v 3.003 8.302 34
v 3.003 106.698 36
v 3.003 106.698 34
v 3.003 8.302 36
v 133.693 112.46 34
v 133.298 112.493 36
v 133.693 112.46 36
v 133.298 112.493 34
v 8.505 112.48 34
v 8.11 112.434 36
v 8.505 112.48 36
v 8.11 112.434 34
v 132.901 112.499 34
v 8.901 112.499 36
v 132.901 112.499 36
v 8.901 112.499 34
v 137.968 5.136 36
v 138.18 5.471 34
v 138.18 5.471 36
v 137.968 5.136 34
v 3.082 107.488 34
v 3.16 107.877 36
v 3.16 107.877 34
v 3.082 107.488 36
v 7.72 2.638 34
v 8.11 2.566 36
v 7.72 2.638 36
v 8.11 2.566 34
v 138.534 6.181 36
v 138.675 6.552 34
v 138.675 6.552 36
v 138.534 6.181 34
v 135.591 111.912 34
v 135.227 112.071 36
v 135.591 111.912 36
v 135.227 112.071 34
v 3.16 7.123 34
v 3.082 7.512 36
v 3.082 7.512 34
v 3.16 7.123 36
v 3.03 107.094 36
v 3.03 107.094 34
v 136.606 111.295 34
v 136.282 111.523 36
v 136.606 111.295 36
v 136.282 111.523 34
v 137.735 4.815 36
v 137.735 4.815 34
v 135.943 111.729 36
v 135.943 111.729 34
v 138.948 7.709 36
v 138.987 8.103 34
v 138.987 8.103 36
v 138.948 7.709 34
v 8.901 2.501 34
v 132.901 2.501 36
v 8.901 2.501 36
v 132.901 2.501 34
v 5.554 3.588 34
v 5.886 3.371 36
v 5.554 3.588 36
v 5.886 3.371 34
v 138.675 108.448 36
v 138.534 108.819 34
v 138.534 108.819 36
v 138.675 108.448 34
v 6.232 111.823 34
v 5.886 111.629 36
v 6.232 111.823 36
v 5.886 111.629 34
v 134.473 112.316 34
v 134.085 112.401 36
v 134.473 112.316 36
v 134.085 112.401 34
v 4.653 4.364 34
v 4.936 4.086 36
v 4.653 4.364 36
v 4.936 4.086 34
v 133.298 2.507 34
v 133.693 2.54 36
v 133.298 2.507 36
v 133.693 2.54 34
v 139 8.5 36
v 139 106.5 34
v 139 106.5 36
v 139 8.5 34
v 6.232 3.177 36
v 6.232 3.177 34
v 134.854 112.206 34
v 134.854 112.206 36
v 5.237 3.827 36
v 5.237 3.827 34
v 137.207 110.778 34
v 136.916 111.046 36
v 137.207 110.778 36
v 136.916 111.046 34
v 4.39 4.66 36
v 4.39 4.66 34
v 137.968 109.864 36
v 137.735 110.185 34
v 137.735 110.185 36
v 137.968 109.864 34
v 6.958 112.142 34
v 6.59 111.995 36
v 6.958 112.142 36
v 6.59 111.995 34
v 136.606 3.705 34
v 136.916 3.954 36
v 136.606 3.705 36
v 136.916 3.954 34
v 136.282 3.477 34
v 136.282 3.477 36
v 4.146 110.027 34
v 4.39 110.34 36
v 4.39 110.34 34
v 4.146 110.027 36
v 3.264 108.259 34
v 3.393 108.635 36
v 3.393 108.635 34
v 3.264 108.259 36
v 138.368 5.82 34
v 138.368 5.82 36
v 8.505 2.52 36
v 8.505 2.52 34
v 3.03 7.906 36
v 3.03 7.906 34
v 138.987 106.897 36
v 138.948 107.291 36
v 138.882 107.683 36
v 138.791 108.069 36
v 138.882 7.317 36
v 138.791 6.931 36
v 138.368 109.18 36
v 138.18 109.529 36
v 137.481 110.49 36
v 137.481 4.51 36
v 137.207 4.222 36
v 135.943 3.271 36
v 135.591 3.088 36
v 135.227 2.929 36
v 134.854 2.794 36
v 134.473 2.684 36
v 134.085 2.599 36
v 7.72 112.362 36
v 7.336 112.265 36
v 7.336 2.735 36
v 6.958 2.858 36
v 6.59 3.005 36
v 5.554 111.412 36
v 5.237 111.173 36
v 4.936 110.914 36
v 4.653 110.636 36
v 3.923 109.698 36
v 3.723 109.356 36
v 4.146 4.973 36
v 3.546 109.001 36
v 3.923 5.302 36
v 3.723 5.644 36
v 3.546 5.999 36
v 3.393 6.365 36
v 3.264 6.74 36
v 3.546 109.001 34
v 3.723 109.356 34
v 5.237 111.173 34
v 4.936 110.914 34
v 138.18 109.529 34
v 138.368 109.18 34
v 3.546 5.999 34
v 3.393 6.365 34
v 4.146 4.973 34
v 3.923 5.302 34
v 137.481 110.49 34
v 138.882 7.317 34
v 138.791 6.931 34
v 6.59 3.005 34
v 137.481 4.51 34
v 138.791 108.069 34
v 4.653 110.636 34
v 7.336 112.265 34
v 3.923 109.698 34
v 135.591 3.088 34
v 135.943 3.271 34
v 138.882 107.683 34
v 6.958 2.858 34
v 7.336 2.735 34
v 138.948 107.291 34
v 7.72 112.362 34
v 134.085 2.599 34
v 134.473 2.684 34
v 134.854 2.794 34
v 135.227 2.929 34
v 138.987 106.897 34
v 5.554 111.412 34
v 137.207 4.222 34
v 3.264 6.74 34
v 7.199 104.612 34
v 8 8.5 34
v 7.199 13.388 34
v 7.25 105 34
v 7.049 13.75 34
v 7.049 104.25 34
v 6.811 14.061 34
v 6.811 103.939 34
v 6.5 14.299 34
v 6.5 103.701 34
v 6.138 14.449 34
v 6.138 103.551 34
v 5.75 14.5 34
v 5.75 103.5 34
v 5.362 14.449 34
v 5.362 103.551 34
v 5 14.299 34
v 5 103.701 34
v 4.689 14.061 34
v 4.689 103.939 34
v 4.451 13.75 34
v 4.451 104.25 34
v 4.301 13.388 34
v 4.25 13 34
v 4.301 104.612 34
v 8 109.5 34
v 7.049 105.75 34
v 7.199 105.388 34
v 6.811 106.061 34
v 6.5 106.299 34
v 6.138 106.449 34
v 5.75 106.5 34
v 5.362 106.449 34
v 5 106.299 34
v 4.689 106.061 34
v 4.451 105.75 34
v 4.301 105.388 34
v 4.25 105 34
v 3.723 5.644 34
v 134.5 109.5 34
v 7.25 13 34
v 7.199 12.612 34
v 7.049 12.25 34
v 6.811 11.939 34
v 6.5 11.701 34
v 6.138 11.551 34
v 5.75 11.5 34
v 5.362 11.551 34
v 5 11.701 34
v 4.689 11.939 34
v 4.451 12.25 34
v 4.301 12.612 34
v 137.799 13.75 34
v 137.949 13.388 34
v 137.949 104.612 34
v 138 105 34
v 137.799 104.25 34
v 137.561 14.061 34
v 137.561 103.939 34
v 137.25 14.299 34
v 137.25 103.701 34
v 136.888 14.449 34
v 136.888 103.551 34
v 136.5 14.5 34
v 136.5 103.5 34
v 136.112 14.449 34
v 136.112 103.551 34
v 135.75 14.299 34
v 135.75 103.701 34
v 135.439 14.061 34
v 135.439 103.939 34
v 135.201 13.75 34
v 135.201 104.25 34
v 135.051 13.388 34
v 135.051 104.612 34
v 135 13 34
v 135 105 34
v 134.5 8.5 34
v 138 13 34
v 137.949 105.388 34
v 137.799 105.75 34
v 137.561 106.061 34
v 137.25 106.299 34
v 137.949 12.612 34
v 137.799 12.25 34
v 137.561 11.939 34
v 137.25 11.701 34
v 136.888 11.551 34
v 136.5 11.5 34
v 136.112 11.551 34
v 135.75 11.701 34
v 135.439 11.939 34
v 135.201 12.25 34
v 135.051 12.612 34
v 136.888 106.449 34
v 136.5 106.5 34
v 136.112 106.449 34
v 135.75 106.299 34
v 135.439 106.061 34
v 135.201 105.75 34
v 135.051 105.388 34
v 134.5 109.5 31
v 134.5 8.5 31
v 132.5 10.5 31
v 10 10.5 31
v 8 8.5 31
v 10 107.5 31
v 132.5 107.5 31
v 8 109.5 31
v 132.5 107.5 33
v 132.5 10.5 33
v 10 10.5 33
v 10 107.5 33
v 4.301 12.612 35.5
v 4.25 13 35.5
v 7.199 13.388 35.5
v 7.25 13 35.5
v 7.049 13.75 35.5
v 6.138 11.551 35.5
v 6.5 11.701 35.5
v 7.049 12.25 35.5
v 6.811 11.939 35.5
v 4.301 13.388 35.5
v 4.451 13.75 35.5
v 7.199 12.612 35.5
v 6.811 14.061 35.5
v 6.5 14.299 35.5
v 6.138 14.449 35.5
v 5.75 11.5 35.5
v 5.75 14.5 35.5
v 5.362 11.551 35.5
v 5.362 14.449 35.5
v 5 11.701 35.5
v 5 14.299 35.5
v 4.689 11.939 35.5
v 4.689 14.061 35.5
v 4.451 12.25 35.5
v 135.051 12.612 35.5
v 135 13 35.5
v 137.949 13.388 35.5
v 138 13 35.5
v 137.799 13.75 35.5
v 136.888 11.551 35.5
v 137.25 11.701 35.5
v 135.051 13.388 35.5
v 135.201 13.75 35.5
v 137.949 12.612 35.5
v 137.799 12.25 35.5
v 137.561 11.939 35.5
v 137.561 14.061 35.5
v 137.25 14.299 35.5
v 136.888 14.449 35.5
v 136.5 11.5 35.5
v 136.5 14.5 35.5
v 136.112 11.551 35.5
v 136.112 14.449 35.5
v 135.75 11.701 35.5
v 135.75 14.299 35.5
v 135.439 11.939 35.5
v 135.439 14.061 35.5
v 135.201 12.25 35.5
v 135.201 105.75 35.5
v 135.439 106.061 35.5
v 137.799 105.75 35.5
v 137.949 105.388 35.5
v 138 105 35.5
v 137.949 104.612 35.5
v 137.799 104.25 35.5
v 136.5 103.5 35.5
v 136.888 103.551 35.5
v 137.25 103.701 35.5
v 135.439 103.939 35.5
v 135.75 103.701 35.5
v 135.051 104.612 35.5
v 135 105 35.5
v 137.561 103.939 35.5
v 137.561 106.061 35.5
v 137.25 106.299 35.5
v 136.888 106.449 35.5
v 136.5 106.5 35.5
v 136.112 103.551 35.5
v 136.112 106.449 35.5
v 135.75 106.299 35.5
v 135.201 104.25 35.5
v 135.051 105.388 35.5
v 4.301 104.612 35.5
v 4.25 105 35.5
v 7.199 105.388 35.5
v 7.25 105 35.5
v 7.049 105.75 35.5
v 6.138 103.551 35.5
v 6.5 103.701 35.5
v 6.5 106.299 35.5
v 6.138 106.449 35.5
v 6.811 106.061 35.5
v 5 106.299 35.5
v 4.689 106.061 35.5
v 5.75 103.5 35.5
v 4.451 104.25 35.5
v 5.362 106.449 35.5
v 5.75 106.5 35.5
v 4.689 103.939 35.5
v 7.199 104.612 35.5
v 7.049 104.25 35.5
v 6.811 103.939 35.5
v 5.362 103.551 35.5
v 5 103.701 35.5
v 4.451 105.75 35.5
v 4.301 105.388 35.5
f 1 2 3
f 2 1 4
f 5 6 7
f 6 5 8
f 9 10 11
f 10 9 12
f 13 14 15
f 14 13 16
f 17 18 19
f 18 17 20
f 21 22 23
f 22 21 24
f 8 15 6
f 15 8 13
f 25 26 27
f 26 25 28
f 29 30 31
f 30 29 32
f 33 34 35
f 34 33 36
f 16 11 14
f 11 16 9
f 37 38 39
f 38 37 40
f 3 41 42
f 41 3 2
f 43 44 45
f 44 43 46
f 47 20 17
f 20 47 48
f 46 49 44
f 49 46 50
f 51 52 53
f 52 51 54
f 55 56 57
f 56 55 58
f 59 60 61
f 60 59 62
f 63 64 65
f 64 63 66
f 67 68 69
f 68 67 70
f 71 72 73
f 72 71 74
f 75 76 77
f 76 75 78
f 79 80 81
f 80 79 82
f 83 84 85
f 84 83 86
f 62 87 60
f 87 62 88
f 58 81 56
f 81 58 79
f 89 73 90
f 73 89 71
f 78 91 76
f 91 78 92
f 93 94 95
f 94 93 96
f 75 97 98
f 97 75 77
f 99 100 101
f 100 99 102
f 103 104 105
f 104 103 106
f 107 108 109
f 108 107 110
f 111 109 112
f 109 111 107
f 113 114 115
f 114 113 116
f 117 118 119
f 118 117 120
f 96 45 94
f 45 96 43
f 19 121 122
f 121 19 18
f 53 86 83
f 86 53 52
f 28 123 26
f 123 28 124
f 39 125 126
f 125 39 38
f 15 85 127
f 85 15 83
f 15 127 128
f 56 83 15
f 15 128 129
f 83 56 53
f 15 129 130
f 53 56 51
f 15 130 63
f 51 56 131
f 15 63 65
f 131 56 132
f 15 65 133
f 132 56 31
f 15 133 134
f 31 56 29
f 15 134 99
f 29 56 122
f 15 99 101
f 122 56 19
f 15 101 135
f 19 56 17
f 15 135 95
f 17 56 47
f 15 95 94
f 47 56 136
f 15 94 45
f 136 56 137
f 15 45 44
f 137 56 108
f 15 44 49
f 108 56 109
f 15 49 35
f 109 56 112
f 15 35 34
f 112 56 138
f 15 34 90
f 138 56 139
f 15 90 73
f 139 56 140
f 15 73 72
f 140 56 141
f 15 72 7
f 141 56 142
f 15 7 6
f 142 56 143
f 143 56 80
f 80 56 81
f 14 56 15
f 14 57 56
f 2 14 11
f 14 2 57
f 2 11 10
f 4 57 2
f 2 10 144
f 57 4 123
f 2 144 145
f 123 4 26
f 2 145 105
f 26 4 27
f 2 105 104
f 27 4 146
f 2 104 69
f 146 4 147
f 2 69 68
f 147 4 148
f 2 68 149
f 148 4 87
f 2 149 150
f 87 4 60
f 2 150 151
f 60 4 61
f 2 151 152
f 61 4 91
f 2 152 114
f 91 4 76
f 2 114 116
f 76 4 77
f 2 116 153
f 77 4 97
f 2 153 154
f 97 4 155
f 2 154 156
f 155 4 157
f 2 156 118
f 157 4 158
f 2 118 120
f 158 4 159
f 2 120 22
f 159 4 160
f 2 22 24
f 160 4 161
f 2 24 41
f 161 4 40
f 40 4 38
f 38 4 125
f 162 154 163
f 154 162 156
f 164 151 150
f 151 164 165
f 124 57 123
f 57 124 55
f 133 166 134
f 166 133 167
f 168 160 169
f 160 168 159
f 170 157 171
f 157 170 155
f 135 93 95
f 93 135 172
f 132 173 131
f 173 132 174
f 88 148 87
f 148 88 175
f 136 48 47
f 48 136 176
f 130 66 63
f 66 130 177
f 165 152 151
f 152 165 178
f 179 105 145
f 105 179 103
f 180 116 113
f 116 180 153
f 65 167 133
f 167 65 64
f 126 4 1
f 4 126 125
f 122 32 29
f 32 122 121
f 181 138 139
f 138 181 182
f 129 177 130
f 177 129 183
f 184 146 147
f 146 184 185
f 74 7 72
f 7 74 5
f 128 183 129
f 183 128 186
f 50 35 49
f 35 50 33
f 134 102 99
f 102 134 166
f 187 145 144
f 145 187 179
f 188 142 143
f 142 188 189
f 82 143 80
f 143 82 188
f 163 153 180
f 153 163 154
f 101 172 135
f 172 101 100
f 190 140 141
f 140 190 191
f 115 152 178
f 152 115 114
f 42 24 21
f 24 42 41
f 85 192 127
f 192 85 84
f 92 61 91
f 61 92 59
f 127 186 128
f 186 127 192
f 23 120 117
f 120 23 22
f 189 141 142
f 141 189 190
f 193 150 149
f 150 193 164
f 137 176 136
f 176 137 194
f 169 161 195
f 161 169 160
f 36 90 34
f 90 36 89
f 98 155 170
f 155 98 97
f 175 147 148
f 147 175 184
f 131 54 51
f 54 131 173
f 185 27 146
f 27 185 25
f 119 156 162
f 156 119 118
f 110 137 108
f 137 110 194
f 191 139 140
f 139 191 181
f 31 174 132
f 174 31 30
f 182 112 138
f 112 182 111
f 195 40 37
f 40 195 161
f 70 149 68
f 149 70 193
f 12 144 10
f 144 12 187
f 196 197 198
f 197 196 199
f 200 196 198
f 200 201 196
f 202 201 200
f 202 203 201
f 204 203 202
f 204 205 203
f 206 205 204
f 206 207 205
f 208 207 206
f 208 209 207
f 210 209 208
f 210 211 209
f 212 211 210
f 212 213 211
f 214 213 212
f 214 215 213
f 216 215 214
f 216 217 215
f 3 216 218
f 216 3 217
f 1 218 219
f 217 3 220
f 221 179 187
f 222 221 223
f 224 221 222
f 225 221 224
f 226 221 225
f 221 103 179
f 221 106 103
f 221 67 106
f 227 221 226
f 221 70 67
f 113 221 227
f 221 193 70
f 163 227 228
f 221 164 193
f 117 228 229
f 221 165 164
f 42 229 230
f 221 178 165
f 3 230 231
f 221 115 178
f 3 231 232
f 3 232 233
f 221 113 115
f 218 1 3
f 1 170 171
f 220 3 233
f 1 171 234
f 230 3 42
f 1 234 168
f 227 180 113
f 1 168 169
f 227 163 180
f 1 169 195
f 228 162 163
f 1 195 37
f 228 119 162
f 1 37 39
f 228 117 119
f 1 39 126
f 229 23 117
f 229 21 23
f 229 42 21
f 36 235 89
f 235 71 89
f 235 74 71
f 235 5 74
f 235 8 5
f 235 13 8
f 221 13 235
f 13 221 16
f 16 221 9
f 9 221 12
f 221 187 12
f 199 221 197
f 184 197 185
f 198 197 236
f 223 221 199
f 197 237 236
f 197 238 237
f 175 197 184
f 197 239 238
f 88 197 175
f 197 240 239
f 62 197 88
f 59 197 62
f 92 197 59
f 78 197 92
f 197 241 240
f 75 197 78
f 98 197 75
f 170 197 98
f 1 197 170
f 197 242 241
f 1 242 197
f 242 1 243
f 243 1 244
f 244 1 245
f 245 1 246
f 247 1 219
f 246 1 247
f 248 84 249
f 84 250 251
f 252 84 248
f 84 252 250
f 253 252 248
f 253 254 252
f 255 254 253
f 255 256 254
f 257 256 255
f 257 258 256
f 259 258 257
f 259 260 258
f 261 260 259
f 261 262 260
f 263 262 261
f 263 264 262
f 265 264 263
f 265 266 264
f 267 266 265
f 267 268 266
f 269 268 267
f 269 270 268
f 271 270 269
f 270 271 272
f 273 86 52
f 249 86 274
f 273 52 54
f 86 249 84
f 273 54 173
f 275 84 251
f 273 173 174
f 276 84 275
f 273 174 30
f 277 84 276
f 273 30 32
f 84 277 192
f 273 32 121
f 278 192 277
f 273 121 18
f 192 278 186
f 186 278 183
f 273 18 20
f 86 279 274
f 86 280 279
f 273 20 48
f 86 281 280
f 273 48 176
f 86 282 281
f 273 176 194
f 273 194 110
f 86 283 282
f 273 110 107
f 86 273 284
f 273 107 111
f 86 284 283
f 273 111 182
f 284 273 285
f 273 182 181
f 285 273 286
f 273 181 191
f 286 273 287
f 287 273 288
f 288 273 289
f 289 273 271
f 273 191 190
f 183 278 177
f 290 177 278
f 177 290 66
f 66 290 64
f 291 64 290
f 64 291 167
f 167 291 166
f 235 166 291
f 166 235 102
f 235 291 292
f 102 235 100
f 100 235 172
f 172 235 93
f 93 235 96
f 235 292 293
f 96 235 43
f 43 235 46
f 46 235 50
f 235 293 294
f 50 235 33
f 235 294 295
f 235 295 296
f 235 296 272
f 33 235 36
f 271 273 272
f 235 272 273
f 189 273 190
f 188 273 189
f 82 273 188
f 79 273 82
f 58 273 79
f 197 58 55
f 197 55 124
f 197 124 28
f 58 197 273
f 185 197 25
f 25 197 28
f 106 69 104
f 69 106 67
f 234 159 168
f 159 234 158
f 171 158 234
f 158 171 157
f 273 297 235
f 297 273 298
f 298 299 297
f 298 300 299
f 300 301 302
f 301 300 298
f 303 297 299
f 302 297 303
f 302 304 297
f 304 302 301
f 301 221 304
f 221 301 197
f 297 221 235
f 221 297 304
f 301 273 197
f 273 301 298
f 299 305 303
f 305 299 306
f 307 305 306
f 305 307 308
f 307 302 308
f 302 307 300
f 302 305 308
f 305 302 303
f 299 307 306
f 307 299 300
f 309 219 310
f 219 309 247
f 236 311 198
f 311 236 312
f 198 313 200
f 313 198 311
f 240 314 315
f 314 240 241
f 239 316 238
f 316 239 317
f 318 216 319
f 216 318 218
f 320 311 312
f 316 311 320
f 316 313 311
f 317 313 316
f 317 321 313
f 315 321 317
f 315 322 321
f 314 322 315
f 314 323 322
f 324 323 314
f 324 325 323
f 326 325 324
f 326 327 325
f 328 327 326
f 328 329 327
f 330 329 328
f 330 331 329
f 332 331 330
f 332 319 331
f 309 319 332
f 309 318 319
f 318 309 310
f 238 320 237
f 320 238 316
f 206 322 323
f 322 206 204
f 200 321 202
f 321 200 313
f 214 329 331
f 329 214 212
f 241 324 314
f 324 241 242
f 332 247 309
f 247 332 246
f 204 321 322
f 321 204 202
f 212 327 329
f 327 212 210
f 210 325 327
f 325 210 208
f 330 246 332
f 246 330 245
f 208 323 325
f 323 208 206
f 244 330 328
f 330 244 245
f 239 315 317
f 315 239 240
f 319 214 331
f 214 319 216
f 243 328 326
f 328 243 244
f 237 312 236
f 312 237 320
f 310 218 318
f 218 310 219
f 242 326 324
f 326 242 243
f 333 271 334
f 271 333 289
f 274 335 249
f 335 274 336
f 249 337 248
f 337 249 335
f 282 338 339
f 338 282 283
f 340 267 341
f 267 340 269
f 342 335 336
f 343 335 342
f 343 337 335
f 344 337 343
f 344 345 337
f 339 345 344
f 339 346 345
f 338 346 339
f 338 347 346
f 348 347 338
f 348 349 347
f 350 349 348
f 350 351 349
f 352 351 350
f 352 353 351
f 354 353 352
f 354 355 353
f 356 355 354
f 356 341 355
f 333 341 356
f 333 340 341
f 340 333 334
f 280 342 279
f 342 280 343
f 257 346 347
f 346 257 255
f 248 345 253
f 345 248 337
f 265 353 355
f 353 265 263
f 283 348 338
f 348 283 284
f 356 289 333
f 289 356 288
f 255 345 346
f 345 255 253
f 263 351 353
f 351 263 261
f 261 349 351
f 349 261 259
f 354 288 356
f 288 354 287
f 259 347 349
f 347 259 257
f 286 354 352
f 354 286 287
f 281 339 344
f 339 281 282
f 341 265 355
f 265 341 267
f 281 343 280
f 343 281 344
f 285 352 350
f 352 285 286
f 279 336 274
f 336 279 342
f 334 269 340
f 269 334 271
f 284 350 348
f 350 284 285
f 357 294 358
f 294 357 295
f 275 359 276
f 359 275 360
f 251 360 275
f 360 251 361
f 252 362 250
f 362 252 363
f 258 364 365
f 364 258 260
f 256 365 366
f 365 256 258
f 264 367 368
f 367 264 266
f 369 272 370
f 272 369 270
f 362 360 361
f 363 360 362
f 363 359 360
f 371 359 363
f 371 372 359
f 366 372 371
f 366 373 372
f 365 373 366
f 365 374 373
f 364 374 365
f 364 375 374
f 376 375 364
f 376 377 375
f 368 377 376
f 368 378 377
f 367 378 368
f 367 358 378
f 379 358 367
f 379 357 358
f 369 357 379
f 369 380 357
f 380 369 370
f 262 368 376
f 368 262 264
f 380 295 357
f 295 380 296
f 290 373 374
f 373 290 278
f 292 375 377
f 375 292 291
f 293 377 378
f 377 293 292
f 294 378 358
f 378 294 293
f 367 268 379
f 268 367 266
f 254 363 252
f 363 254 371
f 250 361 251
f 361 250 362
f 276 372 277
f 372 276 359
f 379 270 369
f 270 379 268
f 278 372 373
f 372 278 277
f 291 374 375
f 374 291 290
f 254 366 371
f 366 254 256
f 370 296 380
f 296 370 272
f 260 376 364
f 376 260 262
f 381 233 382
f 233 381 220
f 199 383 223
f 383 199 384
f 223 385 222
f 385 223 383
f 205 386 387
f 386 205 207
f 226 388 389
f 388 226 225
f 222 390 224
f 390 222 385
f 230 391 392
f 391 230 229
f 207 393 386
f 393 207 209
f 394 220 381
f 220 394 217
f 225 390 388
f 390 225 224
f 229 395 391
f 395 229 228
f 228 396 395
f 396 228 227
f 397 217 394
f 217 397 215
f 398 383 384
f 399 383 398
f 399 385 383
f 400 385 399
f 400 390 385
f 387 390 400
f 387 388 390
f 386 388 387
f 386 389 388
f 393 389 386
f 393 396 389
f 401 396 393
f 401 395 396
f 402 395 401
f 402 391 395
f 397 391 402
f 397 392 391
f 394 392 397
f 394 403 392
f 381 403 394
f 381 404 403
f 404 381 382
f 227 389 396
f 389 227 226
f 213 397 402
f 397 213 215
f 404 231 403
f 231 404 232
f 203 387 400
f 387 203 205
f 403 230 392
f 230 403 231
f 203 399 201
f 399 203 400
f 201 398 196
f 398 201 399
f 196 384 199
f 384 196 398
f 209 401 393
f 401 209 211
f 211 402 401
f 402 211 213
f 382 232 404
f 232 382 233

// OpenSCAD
$fa = 1;
$fs = 0.4;

module rcube(size, radius) {
    hull() {
        translate([radius, radius]) cylinder(r = radius, h = size[2]);
        translate([size[0] - radius, radius]) cylinder(r = radius, h = size[2]);
        translate([size[0] - radius, size[1] - radius]) cylinder(r = radius, h = size[2]);
        translate([radius, size[1] - radius]) cylinder(r = radius, h = size[2]);
    }
}

module epaper_back() {

    difference() {
        translate([0,0,0]) {
            translate([3,8-0.5-5,0]) rcube([136,105+5,2], 6);
            translate([8, 8.5, -3]) cube([126.5, 101,3]);
        }

        translate([10, 10.5, -4]) cube([122.5, 97,3]);

        translate([5.75,4+9,0]) cylinder(d=3,h=1.5);
        translate([143-6.5,4+9,0]) cylinder(d=3,h=1.5);
        translate([143-6.5,118-4-9,0]) cylinder(d=3,h=1.5);
        translate([5.75,118-4-9,0]) cylinder(d=3,h=1.5);
    
    }

}

translate([0, 0, 34]) epaper_back();
